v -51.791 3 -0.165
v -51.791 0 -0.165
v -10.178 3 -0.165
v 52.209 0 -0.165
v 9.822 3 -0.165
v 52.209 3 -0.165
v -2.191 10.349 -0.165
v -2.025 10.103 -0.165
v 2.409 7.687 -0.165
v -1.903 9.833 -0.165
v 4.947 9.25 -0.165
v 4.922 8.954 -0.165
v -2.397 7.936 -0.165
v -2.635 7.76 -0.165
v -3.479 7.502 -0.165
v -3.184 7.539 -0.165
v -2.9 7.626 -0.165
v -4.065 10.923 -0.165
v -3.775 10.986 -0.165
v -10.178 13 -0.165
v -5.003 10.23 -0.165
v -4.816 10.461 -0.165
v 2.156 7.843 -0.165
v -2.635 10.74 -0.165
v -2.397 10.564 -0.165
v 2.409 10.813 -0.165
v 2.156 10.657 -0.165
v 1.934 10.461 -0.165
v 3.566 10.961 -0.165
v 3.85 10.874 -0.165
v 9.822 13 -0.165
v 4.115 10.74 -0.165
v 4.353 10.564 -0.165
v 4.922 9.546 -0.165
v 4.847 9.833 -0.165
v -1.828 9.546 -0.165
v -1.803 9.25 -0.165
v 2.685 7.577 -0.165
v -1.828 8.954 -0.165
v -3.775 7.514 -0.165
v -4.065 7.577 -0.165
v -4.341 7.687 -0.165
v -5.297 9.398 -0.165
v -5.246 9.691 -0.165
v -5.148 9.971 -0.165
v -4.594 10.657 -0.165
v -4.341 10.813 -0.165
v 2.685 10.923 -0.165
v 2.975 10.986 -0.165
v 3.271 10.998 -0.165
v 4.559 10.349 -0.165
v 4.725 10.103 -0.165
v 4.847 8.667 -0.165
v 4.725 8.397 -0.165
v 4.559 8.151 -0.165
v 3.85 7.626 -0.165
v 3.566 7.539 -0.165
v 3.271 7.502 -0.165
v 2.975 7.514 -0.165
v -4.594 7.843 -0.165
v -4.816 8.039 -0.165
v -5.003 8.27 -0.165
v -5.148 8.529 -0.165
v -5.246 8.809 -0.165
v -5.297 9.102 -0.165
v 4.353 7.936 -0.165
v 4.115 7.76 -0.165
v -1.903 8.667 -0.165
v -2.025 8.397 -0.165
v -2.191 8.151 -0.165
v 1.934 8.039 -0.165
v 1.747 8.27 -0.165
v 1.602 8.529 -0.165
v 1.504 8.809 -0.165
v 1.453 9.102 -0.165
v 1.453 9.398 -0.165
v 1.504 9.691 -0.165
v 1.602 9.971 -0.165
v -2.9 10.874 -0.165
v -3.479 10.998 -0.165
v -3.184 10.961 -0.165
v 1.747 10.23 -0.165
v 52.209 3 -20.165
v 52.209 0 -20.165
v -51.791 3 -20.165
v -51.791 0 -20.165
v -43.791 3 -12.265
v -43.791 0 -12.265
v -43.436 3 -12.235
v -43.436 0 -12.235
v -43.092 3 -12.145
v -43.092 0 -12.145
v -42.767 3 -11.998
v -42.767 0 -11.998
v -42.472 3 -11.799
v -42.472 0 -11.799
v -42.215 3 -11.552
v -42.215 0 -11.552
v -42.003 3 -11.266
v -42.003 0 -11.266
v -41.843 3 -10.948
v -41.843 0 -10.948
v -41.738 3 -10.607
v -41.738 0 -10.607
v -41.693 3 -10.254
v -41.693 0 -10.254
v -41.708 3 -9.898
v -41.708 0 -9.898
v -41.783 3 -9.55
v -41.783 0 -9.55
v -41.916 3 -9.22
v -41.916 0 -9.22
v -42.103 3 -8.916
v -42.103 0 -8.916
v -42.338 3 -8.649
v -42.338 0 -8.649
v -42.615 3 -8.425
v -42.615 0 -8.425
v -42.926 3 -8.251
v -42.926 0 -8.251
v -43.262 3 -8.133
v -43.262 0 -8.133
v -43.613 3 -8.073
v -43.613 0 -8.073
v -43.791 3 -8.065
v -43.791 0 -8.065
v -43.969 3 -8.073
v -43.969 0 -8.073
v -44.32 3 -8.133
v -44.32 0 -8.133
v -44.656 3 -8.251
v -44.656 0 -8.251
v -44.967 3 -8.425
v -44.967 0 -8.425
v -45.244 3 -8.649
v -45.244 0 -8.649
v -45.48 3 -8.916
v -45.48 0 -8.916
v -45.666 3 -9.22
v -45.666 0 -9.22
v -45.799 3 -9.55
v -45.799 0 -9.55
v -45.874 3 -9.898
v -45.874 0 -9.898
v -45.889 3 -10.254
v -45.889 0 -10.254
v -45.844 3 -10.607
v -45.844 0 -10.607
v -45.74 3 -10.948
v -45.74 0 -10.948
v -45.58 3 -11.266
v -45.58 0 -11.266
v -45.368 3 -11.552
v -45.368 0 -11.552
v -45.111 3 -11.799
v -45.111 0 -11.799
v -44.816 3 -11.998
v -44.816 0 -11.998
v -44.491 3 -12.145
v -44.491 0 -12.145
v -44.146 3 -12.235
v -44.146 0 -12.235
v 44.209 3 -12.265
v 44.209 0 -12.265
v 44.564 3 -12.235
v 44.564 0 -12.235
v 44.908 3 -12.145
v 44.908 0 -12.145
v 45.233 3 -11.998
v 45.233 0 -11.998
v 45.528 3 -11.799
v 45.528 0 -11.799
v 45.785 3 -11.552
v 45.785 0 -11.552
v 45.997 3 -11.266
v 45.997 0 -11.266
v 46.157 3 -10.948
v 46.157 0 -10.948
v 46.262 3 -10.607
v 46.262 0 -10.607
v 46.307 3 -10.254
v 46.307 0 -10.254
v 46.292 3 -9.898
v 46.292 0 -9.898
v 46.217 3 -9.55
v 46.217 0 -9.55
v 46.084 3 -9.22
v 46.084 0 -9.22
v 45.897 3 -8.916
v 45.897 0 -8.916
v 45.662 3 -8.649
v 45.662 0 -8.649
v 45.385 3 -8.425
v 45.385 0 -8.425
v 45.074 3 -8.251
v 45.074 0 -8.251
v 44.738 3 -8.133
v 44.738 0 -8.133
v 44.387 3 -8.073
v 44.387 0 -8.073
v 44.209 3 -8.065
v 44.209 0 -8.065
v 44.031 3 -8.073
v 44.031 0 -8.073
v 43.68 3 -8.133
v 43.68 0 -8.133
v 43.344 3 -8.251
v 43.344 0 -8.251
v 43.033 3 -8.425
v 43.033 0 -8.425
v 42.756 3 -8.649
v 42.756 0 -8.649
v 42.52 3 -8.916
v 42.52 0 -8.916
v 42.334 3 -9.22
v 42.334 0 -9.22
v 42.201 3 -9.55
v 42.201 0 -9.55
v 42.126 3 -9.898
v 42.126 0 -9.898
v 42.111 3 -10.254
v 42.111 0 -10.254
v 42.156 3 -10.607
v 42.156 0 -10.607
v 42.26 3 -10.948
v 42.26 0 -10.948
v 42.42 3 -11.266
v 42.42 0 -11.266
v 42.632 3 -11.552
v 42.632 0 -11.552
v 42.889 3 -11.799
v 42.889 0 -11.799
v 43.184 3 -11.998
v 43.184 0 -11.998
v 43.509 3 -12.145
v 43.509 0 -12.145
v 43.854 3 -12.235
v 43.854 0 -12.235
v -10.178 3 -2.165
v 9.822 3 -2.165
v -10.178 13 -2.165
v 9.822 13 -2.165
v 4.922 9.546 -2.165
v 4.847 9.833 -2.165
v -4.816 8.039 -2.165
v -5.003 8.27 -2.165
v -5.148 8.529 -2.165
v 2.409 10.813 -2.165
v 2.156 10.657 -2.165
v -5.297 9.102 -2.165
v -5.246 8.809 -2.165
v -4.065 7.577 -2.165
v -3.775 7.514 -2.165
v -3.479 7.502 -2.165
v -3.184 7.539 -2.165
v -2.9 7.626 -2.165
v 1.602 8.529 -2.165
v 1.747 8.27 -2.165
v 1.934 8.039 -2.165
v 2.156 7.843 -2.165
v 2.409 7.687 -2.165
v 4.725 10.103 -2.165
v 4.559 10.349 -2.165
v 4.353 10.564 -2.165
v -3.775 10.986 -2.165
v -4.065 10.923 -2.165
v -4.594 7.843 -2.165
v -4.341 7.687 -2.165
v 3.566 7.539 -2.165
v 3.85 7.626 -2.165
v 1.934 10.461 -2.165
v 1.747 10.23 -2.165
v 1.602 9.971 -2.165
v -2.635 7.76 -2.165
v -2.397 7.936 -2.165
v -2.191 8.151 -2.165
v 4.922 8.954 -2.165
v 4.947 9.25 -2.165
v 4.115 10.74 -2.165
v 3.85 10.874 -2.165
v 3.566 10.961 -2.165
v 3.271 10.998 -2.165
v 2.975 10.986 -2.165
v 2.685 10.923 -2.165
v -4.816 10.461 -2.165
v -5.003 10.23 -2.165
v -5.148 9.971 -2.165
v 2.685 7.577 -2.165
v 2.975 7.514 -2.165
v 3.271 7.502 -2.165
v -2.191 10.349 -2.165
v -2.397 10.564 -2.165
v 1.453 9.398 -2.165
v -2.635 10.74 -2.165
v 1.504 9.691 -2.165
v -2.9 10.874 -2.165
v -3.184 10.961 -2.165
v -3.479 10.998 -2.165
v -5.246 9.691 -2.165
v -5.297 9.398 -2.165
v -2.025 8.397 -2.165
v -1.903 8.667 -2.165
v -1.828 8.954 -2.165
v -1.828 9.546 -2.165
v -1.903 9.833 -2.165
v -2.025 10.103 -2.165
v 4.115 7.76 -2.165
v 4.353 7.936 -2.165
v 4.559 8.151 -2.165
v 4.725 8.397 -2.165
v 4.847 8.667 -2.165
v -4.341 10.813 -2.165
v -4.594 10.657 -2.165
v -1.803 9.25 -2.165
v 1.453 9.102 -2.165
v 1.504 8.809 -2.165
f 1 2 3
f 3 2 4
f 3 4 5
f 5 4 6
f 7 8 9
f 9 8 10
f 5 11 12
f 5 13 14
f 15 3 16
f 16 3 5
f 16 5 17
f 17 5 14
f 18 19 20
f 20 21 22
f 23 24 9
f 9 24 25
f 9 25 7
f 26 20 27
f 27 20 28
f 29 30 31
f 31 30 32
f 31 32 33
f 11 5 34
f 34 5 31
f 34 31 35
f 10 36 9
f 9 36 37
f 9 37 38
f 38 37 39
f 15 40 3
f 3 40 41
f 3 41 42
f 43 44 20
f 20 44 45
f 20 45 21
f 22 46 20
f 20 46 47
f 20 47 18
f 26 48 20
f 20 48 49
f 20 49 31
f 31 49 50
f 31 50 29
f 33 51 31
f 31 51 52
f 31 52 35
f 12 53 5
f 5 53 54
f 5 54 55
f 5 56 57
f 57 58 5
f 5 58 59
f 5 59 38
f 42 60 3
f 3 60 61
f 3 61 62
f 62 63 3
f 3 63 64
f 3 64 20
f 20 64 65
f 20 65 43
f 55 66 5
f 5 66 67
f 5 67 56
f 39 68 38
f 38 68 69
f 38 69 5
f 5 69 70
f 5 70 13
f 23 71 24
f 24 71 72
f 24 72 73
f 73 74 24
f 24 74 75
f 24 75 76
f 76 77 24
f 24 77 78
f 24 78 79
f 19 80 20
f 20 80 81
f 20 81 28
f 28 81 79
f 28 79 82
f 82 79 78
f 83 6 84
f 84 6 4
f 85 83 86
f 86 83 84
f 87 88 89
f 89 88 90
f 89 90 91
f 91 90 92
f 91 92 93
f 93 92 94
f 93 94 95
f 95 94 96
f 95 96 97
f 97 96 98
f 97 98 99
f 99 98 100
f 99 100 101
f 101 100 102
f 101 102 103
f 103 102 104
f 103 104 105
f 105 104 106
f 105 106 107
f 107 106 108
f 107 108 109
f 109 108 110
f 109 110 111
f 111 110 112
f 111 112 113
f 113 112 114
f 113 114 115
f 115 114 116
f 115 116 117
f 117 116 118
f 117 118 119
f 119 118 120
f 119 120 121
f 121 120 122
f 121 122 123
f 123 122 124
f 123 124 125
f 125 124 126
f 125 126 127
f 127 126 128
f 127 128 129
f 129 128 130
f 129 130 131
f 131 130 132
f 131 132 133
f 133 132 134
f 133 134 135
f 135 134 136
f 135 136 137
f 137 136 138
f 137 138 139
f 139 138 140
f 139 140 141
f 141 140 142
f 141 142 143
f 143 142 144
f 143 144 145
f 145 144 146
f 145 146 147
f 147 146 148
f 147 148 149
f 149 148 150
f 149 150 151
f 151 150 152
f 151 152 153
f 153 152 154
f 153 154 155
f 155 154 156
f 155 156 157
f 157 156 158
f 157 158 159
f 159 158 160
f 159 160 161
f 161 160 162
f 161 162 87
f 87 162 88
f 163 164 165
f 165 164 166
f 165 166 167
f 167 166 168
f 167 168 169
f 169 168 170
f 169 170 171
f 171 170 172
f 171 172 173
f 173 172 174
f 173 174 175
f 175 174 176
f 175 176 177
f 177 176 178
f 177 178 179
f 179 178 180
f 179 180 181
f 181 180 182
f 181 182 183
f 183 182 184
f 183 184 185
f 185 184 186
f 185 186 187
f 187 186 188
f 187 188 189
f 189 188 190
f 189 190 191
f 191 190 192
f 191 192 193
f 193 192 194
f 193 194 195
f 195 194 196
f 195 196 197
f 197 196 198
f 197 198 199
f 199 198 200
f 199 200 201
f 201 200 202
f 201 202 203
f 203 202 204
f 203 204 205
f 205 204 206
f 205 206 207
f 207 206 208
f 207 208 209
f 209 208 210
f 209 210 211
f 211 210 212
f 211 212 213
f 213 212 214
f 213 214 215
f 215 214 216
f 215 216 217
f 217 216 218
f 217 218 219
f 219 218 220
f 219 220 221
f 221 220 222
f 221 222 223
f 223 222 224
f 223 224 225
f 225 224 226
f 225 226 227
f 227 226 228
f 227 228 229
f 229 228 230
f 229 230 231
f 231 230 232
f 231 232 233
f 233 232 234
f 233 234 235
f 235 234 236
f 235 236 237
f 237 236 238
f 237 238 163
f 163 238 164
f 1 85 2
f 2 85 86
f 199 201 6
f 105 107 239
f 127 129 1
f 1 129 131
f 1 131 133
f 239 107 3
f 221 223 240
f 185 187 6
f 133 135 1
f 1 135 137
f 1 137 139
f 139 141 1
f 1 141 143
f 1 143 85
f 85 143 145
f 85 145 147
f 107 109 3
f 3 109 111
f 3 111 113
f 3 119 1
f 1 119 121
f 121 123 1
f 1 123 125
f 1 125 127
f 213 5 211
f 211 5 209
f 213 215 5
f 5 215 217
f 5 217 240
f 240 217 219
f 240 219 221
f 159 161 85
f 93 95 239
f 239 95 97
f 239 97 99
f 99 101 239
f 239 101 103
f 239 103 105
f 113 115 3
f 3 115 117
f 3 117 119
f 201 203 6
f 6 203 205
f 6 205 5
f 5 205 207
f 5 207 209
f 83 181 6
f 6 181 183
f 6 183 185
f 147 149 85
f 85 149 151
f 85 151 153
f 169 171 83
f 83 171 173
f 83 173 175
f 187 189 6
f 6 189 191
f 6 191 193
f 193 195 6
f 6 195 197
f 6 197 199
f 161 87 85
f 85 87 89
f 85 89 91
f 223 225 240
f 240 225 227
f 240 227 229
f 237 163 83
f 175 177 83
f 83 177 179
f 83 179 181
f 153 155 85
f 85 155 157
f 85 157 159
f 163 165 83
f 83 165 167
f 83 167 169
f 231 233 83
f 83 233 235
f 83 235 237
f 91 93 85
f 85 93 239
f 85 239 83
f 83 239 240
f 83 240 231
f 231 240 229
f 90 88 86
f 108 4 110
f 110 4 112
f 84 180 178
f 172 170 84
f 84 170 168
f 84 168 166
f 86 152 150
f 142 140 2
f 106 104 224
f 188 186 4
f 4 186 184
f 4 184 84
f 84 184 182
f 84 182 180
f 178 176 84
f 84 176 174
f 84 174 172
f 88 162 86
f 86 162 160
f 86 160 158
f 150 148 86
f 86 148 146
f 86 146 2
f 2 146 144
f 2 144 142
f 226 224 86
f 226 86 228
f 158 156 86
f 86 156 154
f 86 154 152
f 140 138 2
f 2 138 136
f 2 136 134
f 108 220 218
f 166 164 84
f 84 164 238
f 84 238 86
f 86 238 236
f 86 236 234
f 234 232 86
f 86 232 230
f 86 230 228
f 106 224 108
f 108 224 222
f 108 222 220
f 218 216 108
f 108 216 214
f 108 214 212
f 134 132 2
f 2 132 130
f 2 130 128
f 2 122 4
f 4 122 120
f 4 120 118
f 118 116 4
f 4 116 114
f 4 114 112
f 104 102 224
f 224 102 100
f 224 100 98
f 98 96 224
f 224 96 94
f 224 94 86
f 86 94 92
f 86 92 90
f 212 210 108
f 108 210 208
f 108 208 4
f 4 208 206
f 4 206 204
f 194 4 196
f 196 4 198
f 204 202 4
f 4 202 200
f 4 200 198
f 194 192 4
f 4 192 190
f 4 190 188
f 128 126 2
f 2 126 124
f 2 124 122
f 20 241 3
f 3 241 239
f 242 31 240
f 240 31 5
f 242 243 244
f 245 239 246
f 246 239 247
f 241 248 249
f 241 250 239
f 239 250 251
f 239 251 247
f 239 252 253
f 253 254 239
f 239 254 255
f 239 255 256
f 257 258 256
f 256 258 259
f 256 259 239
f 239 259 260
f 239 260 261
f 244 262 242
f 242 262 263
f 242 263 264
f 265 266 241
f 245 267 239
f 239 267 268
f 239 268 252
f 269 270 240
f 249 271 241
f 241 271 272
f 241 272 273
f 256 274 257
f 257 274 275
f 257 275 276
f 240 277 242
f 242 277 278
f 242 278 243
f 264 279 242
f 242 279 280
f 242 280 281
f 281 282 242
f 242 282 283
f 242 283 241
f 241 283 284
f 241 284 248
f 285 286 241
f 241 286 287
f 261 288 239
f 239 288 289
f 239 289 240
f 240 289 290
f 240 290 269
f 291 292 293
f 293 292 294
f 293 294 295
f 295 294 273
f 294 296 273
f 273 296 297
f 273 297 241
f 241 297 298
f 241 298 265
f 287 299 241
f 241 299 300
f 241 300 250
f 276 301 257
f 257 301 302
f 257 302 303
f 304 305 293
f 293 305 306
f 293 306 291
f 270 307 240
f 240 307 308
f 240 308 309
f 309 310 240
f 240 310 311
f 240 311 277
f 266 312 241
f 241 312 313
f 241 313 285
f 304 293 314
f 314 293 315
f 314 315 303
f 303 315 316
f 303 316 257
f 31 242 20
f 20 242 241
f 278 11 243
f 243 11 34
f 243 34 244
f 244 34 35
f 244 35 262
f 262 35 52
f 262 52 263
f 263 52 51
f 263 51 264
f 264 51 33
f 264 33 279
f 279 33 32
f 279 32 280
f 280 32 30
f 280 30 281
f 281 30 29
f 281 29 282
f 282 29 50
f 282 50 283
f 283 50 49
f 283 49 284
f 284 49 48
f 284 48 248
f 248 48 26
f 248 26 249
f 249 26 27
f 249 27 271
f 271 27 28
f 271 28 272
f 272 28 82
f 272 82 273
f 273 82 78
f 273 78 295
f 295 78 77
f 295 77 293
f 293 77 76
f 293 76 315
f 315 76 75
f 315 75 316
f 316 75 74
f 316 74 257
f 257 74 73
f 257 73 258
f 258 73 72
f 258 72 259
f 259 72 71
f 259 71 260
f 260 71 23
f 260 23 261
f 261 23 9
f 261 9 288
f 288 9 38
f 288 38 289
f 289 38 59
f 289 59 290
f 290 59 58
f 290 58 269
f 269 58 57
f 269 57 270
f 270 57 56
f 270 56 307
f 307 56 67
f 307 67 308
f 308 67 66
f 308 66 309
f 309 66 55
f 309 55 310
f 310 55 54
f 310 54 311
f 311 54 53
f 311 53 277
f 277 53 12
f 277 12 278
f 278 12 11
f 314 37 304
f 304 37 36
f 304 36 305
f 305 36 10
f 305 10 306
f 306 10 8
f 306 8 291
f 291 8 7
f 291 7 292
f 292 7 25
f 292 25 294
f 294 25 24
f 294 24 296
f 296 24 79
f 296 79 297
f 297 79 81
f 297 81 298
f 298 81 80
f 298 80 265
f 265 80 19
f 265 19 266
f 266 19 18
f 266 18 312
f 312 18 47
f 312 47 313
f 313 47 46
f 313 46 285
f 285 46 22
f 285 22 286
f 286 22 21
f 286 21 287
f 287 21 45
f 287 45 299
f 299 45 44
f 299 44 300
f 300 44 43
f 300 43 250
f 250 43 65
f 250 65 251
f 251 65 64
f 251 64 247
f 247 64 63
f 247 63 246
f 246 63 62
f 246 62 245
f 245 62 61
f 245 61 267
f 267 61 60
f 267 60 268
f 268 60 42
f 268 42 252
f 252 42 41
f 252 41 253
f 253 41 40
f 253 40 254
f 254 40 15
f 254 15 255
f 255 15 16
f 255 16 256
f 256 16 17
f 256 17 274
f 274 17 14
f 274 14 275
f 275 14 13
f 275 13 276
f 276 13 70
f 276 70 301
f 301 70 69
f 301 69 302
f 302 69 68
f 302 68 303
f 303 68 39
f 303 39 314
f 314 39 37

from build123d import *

# Parameters (mm, degrees)
ESQUISSE1_W             = 104
ESQUISSE1_H             = 20
ESQUISSE1_R             = 2.1
BOSS_EXTRU_1_DEPTH      = 3
BOSS_EXTRU_2_DEPTH      = 10
ESQUISSE3_R             = 1.75
ENL_V_MAT_EXTRU_1_DEPTH = 10


with BuildPart() as part:
    # Esquisse1 → Boss.-Extru.1 (new body)
    with BuildSketch(Plane(origin=(0, 0, 0), x_dir=(1, 0, 0), z_dir=(0, 1, 0))):
        with Locations((0.208658176, 10.165016502)):
            Rectangle(ESQUISSE1_W, ESQUISSE1_H)
        with Locations(Location((-43.791341824, 10.165016502, 0), (0, 0, 270))):
            Circle(ESQUISSE1_R, mode=Mode.SUBTRACT)
        with Locations(Location((44.208658176, 10.165016502, 0), (0, 0, 270))):
            Circle(ESQUISSE1_R, mode=Mode.SUBTRACT)
    extrude(amount=BOSS_EXTRU_1_DEPTH)

    # Esquisse2 → Boss.-Extru.2 (add)
    with BuildSketch(Plane(origin=(0, 3, 0), x_dir=(1, 0, 0), z_dir=(0, 1, 0))):
        Polygon((-0.177943938, 0.165016502), (-10.177943938, 0.165016502), (-10.177943938, 2.165016502), (9.822056062, 2.165016502), (9.822056062, 0.165016502), align=None)
    extrude(amount=BOSS_EXTRU_2_DEPTH)

    # Esquisse3 → Enlèv. mat.-Extru.1 (cut)
    with BuildSketch(Plane.XY.offset(-0.165016502)):
        with Locations((-3.552943938, 9.25)):
            Circle(ESQUISSE3_R)
        with Locations((3.197056062, 9.25)):
            Circle(ESQUISSE3_R)
    extrude(amount=-ENL_V_MAT_EXTRU_1_DEPTH, mode=Mode.SUBTRACT)


solid = part.part
